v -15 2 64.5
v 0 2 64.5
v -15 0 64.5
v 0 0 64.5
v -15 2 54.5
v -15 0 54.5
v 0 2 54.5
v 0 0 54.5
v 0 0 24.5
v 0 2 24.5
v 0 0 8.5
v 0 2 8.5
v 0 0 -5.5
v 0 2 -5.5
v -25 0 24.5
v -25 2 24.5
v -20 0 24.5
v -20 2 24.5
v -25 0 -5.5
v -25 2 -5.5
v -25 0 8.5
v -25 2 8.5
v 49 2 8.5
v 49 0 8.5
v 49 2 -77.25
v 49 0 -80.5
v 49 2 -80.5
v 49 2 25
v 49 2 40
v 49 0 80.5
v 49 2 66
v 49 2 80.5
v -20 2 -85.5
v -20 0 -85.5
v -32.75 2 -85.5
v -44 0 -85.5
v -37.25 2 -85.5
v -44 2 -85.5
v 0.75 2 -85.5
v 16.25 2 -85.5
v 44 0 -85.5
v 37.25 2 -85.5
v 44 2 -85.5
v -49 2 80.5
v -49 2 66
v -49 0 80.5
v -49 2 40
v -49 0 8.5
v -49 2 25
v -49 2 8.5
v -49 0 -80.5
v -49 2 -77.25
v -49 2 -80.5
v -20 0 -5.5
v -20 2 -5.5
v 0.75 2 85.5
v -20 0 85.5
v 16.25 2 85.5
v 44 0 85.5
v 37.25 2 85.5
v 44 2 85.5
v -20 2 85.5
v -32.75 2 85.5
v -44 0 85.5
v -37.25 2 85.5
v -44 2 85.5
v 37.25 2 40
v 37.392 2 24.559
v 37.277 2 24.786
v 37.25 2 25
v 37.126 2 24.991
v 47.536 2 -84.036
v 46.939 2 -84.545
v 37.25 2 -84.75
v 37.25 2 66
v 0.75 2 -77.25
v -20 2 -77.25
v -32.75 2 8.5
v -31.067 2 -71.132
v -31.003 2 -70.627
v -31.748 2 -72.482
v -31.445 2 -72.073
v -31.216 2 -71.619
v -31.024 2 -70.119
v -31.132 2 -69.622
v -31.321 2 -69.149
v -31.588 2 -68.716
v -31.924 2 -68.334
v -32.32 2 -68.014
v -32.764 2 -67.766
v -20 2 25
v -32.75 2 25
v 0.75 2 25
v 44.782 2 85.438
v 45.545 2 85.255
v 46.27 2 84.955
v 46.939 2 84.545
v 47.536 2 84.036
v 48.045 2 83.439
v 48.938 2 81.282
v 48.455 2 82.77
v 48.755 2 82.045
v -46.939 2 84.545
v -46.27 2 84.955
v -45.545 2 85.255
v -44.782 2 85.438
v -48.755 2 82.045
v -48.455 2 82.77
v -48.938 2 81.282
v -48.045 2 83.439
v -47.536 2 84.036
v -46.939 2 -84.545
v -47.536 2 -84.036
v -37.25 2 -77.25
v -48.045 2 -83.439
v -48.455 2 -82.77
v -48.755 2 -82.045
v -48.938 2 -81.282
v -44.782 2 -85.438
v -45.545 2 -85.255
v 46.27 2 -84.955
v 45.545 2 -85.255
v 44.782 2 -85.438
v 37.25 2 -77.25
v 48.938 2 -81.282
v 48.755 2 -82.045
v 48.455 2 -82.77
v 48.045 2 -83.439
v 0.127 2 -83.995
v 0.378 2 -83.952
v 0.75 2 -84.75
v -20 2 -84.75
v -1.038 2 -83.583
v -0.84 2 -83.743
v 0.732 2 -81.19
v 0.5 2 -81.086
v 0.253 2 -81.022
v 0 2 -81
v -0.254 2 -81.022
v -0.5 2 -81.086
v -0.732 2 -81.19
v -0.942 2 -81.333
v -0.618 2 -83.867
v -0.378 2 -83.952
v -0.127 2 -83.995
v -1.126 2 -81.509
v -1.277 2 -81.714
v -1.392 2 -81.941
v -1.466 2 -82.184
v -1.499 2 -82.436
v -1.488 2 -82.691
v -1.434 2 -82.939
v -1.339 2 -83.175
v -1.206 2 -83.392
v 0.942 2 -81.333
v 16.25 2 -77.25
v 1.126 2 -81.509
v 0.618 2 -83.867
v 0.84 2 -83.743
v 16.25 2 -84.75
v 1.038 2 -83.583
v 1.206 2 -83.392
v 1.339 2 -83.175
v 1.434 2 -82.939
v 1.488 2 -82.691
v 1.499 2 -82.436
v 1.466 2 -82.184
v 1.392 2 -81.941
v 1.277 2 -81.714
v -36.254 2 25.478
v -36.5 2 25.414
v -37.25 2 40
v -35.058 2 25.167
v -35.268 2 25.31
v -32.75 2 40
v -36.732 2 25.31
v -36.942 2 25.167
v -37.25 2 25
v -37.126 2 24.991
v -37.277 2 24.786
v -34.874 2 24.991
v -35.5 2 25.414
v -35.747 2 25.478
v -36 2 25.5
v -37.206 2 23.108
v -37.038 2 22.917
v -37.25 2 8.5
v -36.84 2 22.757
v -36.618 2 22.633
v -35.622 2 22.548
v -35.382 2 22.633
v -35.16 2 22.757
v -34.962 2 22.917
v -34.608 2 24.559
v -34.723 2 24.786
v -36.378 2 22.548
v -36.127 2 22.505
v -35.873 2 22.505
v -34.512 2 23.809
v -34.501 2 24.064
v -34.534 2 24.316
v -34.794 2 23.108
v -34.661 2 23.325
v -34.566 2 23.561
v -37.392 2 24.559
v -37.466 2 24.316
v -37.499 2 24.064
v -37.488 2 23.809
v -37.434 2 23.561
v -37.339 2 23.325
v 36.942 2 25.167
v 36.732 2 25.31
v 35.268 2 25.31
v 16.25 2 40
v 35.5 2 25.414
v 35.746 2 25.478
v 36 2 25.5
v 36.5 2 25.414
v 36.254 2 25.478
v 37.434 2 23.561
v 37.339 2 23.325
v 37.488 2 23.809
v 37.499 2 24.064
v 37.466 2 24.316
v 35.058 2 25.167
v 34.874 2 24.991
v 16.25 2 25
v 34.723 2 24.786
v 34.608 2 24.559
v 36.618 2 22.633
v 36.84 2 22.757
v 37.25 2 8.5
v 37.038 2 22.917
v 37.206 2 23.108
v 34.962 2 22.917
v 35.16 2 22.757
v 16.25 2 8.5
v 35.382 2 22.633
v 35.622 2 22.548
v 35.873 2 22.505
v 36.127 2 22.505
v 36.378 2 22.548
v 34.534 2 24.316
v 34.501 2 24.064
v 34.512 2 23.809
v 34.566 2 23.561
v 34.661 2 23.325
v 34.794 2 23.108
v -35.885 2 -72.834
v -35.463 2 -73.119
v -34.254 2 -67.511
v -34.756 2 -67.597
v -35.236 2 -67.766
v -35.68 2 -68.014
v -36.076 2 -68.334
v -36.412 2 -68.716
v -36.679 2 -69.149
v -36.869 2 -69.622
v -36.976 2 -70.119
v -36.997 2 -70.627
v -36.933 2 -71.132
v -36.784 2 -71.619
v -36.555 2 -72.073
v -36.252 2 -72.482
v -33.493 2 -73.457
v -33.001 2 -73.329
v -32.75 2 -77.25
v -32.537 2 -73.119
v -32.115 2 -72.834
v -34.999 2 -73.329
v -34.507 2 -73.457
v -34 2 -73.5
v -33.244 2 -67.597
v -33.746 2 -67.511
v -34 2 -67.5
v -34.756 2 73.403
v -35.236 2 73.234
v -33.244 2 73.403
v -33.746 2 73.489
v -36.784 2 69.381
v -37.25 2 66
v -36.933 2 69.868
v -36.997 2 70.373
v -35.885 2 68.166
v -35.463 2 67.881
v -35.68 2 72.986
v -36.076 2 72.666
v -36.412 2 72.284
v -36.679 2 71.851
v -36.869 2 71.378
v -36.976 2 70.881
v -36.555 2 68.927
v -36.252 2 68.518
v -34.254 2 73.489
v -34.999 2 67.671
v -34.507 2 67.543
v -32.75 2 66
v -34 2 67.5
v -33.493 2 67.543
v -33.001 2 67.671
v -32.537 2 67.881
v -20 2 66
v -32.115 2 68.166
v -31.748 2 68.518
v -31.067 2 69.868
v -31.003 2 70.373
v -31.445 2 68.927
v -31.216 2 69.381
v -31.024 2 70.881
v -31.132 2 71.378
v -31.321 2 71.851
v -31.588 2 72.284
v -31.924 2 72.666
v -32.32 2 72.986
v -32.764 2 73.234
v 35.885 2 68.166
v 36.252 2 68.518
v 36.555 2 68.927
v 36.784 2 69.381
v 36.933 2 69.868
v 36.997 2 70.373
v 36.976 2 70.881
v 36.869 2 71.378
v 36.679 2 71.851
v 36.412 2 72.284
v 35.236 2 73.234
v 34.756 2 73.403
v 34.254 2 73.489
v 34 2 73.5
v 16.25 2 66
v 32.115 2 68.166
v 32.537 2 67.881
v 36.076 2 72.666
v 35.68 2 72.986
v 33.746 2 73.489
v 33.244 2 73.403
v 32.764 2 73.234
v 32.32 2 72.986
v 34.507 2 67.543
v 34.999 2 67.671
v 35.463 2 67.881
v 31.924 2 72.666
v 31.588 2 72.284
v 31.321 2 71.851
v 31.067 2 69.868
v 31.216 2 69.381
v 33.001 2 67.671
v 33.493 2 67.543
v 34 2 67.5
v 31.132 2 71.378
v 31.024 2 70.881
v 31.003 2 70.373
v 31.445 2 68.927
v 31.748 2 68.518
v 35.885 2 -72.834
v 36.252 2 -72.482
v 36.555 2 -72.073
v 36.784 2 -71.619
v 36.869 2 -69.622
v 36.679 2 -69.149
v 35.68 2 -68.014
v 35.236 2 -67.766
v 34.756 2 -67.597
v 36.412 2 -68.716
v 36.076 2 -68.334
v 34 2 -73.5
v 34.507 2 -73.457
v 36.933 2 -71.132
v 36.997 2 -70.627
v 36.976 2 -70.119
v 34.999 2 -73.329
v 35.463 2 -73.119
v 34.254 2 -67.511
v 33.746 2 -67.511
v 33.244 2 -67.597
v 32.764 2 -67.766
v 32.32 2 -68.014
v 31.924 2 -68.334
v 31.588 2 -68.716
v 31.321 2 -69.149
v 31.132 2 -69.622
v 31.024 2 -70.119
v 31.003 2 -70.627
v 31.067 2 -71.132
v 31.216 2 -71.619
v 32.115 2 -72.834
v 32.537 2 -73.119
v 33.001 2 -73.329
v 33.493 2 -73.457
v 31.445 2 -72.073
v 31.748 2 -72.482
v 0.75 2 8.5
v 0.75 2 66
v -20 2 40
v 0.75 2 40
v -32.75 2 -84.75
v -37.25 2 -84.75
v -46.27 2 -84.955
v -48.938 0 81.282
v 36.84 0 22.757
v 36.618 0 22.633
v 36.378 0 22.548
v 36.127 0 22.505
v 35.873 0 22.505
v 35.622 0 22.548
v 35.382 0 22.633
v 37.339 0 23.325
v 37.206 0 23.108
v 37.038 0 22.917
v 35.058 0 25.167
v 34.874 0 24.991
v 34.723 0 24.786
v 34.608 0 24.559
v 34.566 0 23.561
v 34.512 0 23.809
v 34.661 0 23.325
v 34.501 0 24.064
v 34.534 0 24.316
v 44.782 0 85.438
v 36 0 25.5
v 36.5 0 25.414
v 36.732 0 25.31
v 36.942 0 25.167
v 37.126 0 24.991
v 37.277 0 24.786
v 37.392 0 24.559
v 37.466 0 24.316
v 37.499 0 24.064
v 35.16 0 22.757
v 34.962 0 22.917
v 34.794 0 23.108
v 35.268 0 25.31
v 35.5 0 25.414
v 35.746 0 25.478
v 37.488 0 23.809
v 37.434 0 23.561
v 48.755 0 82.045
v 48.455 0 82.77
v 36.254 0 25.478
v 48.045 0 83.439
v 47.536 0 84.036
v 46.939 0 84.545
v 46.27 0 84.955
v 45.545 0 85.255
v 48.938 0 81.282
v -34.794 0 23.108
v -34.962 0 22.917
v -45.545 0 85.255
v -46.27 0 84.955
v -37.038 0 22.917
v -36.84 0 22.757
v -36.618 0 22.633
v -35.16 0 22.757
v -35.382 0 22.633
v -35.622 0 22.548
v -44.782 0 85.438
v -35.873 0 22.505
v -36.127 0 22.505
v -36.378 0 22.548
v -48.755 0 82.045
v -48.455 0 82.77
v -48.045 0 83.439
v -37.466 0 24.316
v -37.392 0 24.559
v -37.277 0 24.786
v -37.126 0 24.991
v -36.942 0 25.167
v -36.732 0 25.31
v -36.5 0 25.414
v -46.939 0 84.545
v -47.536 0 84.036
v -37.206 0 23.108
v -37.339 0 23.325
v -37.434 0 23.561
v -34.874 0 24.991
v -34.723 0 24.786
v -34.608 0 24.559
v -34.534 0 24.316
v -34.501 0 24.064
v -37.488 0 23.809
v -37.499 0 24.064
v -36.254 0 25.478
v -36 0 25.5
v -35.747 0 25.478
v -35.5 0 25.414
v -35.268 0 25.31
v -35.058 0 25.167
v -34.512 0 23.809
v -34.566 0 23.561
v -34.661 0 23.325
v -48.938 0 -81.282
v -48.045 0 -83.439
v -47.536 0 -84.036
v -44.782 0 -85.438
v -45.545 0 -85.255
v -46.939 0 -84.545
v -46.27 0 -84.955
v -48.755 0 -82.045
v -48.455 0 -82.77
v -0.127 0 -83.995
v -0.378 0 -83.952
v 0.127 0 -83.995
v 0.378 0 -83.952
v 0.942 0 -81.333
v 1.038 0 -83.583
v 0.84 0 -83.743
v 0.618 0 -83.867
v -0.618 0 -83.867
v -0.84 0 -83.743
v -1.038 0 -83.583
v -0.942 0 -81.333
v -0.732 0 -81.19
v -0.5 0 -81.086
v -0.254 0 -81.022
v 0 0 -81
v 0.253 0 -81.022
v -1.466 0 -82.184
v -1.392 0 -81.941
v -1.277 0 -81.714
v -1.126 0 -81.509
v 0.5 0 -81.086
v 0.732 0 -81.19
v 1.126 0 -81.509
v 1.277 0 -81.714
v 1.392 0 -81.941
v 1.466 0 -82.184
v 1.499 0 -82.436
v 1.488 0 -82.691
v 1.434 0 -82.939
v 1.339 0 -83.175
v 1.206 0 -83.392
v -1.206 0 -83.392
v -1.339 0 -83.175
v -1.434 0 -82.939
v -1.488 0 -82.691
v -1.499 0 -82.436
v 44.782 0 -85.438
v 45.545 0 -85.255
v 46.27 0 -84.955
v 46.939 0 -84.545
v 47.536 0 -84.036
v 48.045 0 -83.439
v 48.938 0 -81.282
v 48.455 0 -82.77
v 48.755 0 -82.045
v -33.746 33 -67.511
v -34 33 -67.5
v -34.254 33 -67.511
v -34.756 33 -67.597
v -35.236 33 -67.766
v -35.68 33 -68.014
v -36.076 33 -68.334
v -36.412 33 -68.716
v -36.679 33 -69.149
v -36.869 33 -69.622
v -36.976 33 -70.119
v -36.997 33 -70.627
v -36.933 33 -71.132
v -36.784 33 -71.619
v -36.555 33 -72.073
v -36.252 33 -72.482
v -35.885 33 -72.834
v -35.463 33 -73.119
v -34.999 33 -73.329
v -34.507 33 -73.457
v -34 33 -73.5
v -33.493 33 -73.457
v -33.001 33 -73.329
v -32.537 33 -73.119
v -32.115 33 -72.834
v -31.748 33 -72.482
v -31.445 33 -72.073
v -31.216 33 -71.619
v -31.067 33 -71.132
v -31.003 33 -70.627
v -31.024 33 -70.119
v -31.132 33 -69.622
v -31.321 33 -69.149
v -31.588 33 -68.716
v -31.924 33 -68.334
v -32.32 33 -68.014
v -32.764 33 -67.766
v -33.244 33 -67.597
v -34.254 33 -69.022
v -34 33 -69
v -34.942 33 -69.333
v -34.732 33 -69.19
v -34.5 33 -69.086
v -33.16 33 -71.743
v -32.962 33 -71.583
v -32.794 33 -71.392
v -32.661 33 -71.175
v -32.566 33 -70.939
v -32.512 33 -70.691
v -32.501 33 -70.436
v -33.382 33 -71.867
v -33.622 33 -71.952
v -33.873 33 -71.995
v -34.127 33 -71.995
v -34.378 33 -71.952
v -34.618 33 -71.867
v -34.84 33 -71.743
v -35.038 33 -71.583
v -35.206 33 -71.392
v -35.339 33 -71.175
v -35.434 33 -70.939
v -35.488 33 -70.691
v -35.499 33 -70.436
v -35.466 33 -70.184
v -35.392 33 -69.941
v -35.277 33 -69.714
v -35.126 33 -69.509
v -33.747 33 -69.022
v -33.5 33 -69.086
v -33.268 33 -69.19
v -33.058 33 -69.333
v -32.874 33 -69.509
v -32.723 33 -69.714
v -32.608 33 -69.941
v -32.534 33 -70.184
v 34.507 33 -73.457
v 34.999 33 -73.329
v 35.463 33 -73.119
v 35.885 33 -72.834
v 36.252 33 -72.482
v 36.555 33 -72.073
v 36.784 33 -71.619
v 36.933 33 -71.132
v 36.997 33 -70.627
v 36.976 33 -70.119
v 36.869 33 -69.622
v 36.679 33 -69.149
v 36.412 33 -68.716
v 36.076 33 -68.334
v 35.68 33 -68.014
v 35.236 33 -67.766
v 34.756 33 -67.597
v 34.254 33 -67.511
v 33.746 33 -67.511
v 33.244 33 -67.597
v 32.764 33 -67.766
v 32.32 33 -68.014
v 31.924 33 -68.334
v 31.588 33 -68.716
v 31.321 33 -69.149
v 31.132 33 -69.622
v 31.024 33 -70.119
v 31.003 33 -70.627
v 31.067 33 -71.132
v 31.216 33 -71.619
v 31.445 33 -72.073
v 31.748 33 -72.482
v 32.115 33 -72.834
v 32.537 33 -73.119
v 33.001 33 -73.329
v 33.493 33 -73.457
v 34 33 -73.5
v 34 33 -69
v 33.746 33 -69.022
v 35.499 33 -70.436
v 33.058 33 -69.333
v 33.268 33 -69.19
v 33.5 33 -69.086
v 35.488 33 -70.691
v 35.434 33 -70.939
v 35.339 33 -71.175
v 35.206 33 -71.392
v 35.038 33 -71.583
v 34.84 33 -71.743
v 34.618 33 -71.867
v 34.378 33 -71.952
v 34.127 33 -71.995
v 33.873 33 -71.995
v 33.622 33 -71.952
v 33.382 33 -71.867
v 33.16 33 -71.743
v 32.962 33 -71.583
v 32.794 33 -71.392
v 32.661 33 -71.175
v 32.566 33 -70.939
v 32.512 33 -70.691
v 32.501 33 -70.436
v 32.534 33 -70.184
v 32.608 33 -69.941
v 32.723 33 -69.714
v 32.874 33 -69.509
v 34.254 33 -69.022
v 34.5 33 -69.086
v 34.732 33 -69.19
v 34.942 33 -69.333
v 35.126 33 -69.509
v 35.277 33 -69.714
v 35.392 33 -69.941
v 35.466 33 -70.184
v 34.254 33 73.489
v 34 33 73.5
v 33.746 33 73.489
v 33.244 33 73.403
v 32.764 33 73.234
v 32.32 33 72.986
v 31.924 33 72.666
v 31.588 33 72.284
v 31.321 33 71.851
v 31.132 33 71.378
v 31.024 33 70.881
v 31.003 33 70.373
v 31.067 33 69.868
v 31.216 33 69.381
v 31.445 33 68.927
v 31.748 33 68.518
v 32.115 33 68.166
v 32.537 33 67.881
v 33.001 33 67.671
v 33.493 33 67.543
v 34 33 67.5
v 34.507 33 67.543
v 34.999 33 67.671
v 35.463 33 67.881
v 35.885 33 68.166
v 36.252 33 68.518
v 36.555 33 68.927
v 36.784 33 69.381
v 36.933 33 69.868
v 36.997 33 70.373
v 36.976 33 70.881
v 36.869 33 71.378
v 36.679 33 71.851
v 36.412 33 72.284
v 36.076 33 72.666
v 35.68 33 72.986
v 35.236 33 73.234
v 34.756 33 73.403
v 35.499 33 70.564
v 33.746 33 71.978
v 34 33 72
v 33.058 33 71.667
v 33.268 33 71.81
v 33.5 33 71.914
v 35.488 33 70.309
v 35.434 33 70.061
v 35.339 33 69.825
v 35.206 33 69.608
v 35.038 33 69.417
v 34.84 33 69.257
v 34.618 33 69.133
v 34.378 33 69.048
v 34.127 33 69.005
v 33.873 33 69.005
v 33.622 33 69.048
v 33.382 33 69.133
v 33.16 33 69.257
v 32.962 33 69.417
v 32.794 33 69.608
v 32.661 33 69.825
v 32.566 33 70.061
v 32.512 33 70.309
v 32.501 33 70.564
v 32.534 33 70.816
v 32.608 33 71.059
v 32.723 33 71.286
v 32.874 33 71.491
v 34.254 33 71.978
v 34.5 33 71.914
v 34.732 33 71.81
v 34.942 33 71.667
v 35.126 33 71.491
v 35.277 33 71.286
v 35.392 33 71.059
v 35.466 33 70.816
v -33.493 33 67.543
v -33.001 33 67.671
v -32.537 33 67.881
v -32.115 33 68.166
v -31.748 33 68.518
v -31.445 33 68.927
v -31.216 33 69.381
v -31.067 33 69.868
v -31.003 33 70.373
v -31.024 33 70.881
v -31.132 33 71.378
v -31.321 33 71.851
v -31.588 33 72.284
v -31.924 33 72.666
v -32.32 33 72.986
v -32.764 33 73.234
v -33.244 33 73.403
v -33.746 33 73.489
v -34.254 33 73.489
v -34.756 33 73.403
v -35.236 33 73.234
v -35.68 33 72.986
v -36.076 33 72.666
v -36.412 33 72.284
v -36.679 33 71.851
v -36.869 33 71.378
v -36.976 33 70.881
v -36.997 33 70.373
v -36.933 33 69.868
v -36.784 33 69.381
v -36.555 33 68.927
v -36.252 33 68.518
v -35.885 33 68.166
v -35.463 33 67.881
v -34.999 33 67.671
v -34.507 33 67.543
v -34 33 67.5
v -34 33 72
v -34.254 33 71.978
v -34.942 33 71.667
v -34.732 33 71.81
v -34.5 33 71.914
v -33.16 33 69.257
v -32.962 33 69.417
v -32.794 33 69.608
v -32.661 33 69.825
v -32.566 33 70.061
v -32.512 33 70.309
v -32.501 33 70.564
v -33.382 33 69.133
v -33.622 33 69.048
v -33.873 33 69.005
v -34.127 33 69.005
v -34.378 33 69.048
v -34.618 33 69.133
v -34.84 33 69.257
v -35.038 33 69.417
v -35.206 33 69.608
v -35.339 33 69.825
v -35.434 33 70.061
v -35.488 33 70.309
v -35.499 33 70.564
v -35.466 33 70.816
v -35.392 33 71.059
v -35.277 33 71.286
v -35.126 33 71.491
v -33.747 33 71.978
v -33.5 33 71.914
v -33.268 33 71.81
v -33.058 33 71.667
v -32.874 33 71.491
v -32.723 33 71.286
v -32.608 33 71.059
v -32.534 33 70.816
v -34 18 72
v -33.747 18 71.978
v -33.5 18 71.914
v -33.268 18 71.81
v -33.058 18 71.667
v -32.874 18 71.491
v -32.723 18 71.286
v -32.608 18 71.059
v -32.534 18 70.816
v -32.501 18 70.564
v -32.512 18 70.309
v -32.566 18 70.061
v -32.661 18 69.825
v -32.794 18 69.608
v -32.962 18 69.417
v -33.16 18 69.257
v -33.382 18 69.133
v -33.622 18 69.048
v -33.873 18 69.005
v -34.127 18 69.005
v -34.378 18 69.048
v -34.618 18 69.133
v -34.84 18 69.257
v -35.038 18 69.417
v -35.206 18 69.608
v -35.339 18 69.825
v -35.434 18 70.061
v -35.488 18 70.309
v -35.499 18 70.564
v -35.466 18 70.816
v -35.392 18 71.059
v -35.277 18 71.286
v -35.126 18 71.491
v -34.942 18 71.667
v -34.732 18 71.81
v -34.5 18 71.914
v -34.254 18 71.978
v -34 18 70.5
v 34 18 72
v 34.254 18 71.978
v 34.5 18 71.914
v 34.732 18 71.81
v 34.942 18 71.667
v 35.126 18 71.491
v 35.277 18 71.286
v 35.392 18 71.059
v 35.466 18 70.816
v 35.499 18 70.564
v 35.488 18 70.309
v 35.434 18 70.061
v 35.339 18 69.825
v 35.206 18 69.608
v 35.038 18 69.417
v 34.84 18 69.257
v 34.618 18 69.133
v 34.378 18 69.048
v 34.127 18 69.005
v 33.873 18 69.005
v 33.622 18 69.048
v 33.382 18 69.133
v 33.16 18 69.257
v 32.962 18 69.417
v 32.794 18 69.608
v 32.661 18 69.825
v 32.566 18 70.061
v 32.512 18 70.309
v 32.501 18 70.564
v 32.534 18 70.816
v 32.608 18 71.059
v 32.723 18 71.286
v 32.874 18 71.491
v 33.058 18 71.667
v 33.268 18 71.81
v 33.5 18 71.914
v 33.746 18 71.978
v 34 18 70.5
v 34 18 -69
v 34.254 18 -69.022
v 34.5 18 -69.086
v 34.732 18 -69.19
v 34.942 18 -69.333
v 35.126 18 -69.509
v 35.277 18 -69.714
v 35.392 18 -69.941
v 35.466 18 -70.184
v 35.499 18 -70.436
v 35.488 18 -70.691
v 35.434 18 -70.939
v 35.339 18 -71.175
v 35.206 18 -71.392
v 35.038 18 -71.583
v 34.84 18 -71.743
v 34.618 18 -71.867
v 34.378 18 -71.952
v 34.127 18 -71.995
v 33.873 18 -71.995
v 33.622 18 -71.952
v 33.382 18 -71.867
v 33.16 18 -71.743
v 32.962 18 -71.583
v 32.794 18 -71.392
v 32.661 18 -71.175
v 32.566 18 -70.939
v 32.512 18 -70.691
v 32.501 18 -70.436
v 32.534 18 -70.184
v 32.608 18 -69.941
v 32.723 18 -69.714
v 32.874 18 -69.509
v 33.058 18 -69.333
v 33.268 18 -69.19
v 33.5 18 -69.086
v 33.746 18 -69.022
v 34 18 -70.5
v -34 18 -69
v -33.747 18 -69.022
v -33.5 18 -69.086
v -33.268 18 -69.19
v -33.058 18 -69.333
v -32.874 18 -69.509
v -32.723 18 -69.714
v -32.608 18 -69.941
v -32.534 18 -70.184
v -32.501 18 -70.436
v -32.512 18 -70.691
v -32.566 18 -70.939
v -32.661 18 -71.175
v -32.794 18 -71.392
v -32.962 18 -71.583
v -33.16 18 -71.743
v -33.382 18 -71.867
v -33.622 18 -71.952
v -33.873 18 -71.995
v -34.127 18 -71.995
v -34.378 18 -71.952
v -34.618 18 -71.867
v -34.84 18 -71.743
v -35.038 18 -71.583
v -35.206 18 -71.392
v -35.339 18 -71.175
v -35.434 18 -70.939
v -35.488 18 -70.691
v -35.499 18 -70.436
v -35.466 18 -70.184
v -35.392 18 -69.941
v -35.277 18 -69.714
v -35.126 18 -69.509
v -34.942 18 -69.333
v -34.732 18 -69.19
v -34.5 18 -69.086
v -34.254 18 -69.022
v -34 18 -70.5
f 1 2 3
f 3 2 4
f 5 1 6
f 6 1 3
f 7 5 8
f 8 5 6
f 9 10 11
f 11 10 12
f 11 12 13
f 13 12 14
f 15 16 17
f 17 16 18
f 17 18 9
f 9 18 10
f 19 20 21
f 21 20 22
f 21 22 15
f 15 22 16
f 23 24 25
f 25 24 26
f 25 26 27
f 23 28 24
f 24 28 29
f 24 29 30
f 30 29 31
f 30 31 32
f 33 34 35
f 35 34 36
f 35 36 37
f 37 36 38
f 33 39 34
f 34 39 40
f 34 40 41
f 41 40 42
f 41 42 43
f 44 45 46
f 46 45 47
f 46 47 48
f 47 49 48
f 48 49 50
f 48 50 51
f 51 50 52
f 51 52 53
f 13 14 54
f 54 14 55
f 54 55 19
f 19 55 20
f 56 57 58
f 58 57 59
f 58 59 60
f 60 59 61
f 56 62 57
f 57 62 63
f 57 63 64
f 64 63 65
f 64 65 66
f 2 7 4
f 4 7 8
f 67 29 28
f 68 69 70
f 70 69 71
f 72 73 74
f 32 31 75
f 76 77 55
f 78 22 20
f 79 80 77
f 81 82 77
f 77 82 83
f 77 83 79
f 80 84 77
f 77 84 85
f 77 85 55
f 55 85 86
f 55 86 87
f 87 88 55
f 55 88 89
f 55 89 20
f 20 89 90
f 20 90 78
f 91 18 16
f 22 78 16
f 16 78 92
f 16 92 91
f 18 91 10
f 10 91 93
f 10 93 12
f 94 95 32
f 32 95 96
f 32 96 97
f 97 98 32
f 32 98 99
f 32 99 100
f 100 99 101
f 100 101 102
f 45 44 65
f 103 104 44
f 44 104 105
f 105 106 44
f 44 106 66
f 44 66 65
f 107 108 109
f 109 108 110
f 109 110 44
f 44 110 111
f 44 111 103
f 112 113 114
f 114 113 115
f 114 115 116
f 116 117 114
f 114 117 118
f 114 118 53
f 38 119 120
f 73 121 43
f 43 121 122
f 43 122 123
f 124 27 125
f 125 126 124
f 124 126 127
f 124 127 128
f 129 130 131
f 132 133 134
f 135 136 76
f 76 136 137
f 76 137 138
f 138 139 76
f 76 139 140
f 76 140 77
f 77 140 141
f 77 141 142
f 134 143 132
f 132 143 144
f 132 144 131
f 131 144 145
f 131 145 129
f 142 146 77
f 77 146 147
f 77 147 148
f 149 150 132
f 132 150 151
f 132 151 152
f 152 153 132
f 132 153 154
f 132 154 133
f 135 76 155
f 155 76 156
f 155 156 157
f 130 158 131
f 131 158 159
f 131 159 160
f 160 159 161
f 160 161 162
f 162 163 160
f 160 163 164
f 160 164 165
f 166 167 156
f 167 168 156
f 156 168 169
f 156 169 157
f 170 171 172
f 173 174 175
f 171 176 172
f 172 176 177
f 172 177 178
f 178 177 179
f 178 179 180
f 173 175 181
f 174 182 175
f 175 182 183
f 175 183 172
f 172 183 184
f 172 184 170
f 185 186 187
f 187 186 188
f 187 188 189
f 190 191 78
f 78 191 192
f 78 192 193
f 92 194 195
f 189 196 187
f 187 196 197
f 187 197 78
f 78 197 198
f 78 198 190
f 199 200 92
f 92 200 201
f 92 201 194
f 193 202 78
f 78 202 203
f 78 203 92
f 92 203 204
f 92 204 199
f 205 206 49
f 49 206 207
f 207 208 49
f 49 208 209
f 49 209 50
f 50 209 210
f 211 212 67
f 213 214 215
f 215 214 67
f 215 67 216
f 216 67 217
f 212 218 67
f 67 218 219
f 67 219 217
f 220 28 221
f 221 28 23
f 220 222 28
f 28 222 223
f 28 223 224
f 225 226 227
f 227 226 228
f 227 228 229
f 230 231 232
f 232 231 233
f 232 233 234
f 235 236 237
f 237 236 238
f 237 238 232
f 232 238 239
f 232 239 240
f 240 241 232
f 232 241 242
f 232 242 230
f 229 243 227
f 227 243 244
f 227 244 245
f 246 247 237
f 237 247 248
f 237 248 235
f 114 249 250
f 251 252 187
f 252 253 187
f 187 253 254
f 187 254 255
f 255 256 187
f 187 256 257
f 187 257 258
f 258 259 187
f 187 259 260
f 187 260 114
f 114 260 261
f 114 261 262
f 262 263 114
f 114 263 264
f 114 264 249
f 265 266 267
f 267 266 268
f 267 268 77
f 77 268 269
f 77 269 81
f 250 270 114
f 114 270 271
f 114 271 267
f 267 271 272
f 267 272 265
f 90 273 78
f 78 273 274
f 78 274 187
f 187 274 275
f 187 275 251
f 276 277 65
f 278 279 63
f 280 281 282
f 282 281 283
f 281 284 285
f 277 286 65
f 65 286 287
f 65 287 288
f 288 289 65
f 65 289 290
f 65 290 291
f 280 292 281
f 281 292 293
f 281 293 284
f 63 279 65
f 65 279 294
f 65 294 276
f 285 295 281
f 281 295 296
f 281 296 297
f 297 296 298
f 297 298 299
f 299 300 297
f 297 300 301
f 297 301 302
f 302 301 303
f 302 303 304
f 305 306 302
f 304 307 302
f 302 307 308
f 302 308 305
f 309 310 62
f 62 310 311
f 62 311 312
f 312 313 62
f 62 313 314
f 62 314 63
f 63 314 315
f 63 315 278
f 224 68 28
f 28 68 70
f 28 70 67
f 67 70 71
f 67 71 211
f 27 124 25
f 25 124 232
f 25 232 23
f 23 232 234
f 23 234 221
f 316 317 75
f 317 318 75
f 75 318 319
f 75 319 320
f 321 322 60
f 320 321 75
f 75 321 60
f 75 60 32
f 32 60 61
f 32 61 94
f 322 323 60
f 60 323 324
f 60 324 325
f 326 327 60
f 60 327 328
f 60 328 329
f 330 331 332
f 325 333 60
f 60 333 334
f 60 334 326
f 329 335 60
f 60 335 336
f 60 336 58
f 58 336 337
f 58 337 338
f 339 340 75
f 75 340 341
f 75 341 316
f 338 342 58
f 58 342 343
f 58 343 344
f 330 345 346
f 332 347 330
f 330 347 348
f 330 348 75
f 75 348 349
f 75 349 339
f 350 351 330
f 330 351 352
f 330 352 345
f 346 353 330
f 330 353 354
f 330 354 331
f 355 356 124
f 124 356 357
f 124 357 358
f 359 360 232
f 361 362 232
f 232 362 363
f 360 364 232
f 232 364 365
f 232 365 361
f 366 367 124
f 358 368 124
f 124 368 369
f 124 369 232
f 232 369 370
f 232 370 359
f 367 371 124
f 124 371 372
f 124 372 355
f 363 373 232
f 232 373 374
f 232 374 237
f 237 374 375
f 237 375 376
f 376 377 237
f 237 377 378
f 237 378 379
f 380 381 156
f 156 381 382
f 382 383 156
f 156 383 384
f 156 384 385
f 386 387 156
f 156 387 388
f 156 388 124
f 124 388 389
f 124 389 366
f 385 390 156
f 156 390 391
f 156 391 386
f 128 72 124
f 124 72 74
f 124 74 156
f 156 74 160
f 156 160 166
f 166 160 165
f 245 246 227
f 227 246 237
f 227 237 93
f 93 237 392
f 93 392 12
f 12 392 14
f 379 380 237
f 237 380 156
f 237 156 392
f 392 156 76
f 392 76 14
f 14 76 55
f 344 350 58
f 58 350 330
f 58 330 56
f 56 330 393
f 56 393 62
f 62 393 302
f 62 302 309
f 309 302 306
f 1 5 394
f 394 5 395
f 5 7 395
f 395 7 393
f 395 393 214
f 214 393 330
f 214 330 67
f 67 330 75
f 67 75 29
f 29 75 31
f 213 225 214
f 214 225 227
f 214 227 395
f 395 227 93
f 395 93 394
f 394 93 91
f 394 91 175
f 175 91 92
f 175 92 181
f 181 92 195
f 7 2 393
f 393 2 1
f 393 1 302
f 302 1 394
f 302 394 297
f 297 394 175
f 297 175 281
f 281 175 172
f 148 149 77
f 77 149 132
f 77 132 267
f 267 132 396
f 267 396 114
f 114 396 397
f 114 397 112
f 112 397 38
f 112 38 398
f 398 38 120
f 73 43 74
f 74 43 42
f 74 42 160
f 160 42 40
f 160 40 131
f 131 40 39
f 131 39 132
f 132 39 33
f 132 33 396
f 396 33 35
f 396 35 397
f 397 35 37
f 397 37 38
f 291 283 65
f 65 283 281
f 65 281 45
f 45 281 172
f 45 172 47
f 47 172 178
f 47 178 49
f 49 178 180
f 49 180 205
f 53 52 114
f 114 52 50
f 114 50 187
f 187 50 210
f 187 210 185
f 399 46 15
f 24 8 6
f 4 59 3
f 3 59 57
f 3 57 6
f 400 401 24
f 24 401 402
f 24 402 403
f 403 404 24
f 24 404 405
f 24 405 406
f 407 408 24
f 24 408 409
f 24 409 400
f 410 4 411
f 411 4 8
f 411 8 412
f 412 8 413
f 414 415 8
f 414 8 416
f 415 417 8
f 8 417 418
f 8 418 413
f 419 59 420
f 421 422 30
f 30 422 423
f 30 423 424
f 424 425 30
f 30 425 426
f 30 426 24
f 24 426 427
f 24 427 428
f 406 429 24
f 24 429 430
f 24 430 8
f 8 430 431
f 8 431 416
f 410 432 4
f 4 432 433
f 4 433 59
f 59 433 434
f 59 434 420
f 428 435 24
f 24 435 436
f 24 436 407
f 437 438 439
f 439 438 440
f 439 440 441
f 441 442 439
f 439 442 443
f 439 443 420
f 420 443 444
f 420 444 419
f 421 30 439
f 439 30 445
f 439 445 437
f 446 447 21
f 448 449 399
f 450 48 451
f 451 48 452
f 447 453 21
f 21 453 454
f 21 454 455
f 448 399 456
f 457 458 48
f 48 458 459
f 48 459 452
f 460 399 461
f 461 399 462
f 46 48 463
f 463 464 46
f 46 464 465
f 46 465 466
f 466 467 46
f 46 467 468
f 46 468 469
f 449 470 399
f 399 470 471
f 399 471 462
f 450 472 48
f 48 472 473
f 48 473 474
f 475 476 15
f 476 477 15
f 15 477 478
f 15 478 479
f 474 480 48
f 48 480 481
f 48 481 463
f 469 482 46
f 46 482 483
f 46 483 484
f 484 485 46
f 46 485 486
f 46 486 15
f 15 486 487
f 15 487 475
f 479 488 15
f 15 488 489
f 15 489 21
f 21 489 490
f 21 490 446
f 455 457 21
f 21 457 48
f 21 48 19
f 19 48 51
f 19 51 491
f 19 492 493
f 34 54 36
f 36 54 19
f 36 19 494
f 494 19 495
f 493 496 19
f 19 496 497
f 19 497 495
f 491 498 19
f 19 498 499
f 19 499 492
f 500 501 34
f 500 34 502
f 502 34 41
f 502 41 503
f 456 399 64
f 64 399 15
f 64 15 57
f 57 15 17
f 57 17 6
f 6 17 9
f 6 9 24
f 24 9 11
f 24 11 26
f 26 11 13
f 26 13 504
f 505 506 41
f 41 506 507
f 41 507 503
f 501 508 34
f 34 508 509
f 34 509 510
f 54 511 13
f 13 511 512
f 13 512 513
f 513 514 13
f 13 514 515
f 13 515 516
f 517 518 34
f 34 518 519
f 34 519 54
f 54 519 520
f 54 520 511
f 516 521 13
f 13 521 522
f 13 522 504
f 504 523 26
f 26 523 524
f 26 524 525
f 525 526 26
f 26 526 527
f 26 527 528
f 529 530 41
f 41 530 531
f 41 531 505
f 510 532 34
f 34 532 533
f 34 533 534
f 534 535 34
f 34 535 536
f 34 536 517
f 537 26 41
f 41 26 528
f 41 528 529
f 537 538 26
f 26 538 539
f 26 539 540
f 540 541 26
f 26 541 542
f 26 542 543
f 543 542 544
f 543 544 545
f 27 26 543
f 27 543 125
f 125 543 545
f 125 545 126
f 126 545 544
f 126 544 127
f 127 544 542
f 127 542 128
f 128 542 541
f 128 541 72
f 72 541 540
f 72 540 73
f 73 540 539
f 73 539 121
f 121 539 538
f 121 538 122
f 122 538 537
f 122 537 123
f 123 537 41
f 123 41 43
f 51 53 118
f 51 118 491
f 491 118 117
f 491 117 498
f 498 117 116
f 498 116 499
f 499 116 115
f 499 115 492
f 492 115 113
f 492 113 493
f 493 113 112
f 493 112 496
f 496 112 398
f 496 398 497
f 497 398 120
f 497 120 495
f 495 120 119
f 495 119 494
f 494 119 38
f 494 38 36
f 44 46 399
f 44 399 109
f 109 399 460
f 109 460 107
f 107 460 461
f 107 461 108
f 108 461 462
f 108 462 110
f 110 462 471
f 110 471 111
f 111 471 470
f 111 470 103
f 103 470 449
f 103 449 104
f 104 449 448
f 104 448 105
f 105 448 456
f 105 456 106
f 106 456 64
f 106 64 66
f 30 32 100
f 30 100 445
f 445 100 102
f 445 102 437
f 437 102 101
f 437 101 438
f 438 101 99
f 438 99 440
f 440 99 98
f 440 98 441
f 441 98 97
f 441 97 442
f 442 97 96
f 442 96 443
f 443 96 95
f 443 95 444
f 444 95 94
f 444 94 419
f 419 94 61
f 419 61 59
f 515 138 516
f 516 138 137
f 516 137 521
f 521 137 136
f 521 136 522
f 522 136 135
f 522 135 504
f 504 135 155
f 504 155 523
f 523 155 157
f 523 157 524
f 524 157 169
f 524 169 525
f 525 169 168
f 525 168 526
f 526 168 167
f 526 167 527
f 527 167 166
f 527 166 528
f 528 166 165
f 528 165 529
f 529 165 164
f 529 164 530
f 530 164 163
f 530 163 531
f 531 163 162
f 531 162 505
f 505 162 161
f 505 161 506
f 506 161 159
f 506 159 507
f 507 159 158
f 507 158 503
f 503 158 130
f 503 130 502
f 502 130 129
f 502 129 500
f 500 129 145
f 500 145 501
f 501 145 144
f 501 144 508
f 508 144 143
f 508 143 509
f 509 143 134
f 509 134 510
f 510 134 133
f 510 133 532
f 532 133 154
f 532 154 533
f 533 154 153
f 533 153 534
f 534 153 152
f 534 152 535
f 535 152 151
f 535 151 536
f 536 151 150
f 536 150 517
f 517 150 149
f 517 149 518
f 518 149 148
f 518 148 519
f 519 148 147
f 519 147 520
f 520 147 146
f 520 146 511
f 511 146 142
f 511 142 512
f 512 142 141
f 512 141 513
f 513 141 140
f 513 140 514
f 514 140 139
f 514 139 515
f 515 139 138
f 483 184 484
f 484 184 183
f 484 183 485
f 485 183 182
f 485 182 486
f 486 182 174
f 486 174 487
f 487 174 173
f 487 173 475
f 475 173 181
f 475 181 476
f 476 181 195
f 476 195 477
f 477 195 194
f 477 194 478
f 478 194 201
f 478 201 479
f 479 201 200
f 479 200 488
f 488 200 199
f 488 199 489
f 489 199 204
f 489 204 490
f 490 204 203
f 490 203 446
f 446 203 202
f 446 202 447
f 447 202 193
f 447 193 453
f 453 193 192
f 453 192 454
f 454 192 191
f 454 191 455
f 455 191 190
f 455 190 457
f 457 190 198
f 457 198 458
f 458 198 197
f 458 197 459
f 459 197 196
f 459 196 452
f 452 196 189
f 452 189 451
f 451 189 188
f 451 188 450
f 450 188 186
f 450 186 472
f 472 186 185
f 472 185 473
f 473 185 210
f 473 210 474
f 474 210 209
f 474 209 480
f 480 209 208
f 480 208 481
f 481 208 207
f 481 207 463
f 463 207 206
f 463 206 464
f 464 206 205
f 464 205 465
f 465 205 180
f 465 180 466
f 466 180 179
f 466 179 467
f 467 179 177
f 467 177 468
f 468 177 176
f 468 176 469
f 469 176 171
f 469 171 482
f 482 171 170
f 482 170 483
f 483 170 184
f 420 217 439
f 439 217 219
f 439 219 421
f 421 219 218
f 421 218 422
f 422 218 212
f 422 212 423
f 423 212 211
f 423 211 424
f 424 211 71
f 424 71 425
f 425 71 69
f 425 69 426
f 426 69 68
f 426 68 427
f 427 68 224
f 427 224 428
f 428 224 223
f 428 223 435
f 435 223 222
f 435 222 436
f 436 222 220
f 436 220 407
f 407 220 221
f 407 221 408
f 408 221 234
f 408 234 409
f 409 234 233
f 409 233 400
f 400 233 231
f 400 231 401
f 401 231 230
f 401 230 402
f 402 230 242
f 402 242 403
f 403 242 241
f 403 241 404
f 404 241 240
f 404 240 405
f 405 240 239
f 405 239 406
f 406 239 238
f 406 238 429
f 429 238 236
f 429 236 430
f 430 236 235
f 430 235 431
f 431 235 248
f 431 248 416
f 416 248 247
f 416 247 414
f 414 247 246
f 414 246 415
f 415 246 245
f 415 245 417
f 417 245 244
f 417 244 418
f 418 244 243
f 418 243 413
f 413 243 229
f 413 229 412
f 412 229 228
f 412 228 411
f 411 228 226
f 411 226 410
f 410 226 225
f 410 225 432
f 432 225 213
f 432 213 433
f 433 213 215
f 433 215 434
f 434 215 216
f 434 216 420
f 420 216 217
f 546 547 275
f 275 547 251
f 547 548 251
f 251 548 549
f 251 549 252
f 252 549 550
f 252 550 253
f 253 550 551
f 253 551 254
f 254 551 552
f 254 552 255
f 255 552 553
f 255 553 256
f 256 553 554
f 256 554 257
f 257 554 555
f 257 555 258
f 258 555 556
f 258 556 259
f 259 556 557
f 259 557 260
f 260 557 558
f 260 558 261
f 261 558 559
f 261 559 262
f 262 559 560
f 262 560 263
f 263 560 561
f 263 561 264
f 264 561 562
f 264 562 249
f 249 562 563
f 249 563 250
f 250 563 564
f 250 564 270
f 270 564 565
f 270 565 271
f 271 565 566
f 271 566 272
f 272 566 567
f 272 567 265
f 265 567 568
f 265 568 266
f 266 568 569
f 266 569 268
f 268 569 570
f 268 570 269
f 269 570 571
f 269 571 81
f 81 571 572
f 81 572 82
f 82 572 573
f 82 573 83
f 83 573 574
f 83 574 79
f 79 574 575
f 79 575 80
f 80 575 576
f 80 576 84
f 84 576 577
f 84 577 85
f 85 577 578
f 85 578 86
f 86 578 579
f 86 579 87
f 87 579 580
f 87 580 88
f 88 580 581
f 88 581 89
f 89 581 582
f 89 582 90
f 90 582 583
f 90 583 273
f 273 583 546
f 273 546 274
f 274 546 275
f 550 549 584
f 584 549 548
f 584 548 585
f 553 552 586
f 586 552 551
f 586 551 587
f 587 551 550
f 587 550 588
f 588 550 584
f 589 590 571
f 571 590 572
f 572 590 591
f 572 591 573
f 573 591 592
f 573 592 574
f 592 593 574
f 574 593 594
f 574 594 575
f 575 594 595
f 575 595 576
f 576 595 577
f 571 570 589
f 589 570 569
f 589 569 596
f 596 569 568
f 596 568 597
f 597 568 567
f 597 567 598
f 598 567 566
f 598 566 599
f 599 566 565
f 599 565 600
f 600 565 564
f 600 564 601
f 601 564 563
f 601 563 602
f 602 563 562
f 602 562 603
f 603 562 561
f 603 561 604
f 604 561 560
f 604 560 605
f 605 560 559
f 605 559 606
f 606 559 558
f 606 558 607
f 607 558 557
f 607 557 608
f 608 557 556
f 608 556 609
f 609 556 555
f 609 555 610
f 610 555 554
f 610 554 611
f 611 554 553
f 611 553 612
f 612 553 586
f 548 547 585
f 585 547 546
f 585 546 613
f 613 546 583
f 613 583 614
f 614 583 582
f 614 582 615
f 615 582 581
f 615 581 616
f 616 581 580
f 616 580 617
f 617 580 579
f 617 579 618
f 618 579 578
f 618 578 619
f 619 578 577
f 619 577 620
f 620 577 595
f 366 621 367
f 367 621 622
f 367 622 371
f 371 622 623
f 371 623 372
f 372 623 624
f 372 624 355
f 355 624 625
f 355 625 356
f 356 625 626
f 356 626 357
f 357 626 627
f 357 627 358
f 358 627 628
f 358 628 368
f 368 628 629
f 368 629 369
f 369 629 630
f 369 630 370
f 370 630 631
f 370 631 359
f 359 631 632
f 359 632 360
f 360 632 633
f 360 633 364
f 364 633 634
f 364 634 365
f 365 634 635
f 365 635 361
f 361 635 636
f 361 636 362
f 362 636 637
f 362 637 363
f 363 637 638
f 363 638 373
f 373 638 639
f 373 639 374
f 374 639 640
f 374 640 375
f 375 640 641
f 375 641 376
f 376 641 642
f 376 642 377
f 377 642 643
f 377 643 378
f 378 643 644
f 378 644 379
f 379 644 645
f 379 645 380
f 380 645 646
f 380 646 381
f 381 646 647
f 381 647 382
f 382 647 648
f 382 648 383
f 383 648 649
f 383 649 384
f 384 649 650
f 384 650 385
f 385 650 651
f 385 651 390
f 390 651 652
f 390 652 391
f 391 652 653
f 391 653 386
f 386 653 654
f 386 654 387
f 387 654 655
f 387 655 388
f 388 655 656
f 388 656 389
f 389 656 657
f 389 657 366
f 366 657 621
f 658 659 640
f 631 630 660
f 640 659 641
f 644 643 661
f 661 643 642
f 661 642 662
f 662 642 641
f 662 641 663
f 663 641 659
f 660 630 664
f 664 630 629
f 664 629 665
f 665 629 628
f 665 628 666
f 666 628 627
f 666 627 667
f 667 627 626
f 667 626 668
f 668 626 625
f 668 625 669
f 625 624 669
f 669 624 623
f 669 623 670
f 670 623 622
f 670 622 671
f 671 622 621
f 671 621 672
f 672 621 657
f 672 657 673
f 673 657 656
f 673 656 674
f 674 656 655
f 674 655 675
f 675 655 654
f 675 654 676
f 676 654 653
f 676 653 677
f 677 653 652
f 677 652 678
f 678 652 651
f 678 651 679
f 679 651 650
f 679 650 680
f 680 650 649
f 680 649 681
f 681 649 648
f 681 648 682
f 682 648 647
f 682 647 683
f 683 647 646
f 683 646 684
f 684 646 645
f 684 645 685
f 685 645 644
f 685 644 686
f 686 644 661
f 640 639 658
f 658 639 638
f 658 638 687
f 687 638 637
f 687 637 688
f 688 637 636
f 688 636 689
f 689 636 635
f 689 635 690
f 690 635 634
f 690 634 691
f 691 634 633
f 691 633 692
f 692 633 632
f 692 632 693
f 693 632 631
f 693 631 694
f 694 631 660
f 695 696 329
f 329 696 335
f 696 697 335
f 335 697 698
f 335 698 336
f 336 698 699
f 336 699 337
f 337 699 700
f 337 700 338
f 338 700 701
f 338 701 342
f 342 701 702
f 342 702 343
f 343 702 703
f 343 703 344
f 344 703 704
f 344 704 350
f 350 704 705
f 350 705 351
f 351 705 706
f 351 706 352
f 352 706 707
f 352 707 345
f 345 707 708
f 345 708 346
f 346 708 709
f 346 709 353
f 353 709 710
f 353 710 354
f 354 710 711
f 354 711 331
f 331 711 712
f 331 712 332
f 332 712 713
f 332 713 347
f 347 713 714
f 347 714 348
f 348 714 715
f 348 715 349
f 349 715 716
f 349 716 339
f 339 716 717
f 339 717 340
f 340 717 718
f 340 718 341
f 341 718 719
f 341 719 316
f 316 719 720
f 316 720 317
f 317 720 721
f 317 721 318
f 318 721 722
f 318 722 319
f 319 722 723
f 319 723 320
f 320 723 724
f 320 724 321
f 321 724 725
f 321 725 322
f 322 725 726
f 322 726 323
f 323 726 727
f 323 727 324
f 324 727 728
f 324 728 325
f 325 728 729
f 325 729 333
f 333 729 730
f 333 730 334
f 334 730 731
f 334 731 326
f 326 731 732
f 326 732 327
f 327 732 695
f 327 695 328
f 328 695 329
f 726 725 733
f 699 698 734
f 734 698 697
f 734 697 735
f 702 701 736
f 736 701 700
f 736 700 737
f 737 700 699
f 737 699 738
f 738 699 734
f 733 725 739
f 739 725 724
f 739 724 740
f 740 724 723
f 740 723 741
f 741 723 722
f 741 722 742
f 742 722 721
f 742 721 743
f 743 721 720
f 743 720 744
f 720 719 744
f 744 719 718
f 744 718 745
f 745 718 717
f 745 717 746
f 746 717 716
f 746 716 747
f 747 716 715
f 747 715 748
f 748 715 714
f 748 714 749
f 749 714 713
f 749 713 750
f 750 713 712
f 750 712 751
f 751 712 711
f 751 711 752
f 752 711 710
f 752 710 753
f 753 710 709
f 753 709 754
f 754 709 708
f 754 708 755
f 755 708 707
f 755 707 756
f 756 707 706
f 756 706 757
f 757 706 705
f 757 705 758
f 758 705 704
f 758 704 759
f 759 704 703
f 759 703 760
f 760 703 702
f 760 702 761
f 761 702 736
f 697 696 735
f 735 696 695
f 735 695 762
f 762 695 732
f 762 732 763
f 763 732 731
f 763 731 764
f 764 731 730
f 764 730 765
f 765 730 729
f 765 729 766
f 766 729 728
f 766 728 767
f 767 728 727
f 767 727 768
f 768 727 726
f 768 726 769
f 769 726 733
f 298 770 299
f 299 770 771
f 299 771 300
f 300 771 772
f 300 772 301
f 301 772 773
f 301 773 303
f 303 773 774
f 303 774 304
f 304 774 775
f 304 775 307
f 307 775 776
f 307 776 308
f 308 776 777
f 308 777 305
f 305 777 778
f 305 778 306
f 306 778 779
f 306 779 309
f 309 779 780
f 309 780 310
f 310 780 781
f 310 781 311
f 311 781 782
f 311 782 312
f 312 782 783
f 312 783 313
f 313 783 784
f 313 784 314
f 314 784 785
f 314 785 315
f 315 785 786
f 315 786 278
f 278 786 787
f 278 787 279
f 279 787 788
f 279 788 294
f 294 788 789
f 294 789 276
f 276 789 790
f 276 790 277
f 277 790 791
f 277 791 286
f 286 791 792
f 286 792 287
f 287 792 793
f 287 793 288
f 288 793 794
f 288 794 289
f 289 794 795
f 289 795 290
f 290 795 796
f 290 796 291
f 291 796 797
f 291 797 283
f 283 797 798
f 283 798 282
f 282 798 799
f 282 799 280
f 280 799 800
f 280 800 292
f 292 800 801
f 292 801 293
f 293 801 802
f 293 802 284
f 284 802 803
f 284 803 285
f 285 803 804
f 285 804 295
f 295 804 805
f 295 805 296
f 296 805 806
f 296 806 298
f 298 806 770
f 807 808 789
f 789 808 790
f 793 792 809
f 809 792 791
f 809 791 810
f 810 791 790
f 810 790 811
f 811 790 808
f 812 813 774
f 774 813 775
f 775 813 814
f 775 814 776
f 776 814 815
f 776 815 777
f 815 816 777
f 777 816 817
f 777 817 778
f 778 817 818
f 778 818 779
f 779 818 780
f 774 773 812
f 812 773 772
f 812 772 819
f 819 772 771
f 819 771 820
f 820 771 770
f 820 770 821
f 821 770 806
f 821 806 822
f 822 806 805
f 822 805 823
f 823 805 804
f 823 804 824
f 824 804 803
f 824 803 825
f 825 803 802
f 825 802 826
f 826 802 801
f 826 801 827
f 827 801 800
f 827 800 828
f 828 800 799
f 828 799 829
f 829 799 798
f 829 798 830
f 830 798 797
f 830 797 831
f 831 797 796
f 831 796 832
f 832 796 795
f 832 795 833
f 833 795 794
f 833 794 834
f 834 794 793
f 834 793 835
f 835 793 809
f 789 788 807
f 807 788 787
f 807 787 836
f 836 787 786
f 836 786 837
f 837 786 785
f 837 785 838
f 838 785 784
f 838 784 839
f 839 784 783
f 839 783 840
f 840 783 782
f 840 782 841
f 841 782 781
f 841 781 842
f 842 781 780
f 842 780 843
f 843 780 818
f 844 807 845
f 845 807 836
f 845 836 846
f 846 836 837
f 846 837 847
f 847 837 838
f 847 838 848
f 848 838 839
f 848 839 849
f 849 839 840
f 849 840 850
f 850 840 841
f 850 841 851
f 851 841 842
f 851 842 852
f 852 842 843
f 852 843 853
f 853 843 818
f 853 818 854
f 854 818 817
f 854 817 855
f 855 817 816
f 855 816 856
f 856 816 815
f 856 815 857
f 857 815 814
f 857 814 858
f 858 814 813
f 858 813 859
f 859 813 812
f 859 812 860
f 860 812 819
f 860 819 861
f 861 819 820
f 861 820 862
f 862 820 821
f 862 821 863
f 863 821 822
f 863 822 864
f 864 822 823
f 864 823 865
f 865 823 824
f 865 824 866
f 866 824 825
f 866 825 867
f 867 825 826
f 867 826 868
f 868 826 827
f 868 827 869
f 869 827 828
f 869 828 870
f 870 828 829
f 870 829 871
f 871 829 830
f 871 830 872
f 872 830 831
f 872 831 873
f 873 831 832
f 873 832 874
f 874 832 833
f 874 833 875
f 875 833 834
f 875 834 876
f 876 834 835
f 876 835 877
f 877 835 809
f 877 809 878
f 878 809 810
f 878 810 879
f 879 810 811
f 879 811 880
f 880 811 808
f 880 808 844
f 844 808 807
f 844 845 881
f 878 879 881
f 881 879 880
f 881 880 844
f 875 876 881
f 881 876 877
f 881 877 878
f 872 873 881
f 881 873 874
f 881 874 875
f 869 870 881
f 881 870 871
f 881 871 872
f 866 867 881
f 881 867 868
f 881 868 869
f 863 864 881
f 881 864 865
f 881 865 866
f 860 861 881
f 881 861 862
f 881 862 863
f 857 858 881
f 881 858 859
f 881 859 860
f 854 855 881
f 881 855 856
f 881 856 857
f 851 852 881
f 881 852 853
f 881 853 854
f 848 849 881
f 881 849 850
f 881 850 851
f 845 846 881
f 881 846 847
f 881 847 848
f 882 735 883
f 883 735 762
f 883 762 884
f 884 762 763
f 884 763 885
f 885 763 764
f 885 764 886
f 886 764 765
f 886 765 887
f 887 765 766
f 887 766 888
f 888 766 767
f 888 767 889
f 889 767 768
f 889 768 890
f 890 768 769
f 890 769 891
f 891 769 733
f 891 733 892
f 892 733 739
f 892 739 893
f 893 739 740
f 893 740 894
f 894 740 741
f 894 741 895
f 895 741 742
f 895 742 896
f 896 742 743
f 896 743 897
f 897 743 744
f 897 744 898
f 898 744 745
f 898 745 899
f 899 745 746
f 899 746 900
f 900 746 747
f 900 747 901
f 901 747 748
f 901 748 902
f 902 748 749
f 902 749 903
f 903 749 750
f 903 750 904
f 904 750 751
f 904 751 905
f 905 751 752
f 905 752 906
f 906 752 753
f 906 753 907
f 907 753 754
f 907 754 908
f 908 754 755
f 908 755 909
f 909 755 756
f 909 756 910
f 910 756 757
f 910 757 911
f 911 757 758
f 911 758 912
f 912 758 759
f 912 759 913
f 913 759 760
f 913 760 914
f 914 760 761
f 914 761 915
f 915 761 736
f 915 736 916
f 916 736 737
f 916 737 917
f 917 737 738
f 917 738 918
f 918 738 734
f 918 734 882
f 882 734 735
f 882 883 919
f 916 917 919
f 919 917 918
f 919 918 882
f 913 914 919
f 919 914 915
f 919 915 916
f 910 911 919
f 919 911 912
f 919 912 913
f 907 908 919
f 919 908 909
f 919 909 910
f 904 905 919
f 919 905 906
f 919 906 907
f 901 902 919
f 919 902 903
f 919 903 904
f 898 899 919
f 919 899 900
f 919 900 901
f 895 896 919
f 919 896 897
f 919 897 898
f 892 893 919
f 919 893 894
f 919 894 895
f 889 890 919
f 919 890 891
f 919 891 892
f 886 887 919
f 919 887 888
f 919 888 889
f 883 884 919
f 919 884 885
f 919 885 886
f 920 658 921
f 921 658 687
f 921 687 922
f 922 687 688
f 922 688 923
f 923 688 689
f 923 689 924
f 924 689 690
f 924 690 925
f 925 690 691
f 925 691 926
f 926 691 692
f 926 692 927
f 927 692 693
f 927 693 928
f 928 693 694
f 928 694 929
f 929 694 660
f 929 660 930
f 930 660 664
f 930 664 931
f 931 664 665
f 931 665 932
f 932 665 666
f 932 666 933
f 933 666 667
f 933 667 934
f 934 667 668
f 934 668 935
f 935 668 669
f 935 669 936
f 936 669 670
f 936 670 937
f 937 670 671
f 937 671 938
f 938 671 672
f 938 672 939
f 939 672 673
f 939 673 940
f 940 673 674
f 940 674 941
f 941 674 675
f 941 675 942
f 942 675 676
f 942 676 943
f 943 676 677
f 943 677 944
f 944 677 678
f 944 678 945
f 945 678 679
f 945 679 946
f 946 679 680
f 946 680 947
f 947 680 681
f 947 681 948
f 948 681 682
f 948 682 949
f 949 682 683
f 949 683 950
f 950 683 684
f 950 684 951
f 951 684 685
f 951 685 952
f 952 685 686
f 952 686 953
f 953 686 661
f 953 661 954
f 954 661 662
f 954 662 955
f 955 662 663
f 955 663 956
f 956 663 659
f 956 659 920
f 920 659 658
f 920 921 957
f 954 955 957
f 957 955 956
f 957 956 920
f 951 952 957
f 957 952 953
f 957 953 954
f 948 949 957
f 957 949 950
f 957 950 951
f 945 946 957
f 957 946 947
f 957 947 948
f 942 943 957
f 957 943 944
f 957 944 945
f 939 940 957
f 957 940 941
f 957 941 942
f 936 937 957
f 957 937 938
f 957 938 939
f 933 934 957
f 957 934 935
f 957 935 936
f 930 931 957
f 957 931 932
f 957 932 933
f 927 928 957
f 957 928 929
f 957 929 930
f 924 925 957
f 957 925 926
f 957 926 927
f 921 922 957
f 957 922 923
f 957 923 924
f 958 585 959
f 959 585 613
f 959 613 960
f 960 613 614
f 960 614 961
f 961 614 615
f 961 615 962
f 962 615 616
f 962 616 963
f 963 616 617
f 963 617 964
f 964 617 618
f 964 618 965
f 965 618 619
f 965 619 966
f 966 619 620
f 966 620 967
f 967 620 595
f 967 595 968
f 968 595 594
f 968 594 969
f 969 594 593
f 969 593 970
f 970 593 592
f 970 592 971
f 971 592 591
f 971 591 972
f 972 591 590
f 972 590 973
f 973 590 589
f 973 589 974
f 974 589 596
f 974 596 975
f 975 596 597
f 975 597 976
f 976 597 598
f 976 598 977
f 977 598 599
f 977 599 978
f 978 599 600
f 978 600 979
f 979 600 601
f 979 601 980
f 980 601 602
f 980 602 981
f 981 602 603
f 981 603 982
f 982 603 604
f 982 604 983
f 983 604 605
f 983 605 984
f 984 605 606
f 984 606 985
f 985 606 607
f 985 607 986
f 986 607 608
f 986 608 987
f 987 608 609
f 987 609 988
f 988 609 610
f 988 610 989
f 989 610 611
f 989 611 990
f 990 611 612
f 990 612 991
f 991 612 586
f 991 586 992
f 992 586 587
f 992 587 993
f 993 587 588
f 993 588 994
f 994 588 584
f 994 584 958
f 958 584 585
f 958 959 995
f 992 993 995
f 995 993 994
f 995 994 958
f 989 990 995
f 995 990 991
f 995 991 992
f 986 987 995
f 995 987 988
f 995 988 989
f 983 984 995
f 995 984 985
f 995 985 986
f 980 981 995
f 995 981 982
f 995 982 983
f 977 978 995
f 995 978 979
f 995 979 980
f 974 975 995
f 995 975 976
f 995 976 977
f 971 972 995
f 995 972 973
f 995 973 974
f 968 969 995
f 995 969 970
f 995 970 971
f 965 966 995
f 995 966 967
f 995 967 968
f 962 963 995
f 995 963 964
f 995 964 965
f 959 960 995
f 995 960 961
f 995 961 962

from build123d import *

# Parameters (mm, degrees)
CROQUIS1_W              = 98
CROQUIS1_H              = 171
CROQUIS1_W_2            = 15
CROQUIS1_H_2            = 10
SALIENTE_EXTRUIR1_DEPTH = 2
REDONDEO1_R             = 5
CROQUIS2_R              = 1.5
CORTAR_EXTRUIR2_DEPTH   = 10
CROQUIS5_R              = 3
SALIENTE_EXTRUIR2_DEPTH = 31
CROQUIS6_R              = 1.5
CORTAR_EXTRUIR3_DEPTH   = 15


with BuildPart() as part:
    # Croquis1 → Saliente-Extruir1 (new body)
    with BuildSketch(Plane(origin=(0, 0, 0), x_dir=(1, 0, 0), z_dir=(0, 1, 0))):
        Rectangle(CROQUIS1_W, CROQUIS1_H)
        with Locations((-7.5, -59.5)):
            Rectangle(CROQUIS1_W_2, CROQUIS1_H_2, mode=Mode.SUBTRACT)
        Polygon((-25, 5.5), (0, 5.5), (0, 0), (0, -24.5), (-25, -24.5), align=None, mode=Mode.SUBTRACT)
    extrude(amount=SALIENTE_EXTRUIR1_DEPTH)

    # Redondeo1
    redondeo1_edges = [part.edges().sort_by_distance(p)[0] for p in [
        (49, 1, 85.5),
        (-49, 1, 85.5),
        (-49, 1, -85.5),
        (49, 1, -85.5),
    ]]
    fillet(redondeo1_edges, radius=REDONDEO1_R)

    # Croquis2 → Cortar-Extruir2 (cut)
    with BuildSketch(Plane(origin=(0, 2, 0), x_dir=(1, 0, 0), z_dir=(0, 1, 0))):
        with Locations(Location((-36, -24, 0), (0, 0, 270))):
            Circle(CROQUIS2_R)
        with Locations(Location((36, -24, 0), (0, 0, 270))):
            Circle(CROQUIS2_R)
        with Locations(Location((0, 82.5, 0), (0, 0, 270))):
            Circle(CROQUIS2_R)
    extrude(amount=-CORTAR_EXTRUIR2_DEPTH, mode=Mode.SUBTRACT)

    # Croquis5 → Saliente-Extruir2 (add)
    with BuildSketch(Plane(origin=(0, 2, 0), x_dir=(1, 0, 0), z_dir=(0, 1, 0))):
        with Locations(Location((-34, 70.5, 0), (0, 0, 270))):
            Circle(CROQUIS5_R)
        with Locations(Location((34, 70.5, 0), (0, 0, 90))):
            Circle(CROQUIS5_R)
        with Locations(Location((34, -70.5, 0), (0, 0, 270))):
            Circle(CROQUIS5_R)
        with Locations(Location((-34, -70.5, 0), (0, 0, 90))):
            Circle(CROQUIS5_R)
    extrude(amount=SALIENTE_EXTRUIR2_DEPTH)

    # Croquis6 → Cortar-Extruir3 (cut)
    with BuildSketch(Plane(origin=(0, 33, 0), x_dir=(1, 0, 0), z_dir=(0, 1, 0))):
        with Locations(Location((-34, 70.5, 0), (0, 0, 270))):
            Circle(CROQUIS6_R)
        with Locations(Location((34, 70.5, 0), (0, 0, 270))):
            Circle(CROQUIS6_R)
        with Locations(Location((34, -70.5, 0), (0, 0, 270))):
            Circle(CROQUIS6_R)
        with Locations(Location((-34, -70.5, 0), (0, 0, 270))):
            Circle(CROQUIS6_R)
    extrude(amount=-CORTAR_EXTRUIR3_DEPTH, mode=Mode.SUBTRACT)


solid = part.part
